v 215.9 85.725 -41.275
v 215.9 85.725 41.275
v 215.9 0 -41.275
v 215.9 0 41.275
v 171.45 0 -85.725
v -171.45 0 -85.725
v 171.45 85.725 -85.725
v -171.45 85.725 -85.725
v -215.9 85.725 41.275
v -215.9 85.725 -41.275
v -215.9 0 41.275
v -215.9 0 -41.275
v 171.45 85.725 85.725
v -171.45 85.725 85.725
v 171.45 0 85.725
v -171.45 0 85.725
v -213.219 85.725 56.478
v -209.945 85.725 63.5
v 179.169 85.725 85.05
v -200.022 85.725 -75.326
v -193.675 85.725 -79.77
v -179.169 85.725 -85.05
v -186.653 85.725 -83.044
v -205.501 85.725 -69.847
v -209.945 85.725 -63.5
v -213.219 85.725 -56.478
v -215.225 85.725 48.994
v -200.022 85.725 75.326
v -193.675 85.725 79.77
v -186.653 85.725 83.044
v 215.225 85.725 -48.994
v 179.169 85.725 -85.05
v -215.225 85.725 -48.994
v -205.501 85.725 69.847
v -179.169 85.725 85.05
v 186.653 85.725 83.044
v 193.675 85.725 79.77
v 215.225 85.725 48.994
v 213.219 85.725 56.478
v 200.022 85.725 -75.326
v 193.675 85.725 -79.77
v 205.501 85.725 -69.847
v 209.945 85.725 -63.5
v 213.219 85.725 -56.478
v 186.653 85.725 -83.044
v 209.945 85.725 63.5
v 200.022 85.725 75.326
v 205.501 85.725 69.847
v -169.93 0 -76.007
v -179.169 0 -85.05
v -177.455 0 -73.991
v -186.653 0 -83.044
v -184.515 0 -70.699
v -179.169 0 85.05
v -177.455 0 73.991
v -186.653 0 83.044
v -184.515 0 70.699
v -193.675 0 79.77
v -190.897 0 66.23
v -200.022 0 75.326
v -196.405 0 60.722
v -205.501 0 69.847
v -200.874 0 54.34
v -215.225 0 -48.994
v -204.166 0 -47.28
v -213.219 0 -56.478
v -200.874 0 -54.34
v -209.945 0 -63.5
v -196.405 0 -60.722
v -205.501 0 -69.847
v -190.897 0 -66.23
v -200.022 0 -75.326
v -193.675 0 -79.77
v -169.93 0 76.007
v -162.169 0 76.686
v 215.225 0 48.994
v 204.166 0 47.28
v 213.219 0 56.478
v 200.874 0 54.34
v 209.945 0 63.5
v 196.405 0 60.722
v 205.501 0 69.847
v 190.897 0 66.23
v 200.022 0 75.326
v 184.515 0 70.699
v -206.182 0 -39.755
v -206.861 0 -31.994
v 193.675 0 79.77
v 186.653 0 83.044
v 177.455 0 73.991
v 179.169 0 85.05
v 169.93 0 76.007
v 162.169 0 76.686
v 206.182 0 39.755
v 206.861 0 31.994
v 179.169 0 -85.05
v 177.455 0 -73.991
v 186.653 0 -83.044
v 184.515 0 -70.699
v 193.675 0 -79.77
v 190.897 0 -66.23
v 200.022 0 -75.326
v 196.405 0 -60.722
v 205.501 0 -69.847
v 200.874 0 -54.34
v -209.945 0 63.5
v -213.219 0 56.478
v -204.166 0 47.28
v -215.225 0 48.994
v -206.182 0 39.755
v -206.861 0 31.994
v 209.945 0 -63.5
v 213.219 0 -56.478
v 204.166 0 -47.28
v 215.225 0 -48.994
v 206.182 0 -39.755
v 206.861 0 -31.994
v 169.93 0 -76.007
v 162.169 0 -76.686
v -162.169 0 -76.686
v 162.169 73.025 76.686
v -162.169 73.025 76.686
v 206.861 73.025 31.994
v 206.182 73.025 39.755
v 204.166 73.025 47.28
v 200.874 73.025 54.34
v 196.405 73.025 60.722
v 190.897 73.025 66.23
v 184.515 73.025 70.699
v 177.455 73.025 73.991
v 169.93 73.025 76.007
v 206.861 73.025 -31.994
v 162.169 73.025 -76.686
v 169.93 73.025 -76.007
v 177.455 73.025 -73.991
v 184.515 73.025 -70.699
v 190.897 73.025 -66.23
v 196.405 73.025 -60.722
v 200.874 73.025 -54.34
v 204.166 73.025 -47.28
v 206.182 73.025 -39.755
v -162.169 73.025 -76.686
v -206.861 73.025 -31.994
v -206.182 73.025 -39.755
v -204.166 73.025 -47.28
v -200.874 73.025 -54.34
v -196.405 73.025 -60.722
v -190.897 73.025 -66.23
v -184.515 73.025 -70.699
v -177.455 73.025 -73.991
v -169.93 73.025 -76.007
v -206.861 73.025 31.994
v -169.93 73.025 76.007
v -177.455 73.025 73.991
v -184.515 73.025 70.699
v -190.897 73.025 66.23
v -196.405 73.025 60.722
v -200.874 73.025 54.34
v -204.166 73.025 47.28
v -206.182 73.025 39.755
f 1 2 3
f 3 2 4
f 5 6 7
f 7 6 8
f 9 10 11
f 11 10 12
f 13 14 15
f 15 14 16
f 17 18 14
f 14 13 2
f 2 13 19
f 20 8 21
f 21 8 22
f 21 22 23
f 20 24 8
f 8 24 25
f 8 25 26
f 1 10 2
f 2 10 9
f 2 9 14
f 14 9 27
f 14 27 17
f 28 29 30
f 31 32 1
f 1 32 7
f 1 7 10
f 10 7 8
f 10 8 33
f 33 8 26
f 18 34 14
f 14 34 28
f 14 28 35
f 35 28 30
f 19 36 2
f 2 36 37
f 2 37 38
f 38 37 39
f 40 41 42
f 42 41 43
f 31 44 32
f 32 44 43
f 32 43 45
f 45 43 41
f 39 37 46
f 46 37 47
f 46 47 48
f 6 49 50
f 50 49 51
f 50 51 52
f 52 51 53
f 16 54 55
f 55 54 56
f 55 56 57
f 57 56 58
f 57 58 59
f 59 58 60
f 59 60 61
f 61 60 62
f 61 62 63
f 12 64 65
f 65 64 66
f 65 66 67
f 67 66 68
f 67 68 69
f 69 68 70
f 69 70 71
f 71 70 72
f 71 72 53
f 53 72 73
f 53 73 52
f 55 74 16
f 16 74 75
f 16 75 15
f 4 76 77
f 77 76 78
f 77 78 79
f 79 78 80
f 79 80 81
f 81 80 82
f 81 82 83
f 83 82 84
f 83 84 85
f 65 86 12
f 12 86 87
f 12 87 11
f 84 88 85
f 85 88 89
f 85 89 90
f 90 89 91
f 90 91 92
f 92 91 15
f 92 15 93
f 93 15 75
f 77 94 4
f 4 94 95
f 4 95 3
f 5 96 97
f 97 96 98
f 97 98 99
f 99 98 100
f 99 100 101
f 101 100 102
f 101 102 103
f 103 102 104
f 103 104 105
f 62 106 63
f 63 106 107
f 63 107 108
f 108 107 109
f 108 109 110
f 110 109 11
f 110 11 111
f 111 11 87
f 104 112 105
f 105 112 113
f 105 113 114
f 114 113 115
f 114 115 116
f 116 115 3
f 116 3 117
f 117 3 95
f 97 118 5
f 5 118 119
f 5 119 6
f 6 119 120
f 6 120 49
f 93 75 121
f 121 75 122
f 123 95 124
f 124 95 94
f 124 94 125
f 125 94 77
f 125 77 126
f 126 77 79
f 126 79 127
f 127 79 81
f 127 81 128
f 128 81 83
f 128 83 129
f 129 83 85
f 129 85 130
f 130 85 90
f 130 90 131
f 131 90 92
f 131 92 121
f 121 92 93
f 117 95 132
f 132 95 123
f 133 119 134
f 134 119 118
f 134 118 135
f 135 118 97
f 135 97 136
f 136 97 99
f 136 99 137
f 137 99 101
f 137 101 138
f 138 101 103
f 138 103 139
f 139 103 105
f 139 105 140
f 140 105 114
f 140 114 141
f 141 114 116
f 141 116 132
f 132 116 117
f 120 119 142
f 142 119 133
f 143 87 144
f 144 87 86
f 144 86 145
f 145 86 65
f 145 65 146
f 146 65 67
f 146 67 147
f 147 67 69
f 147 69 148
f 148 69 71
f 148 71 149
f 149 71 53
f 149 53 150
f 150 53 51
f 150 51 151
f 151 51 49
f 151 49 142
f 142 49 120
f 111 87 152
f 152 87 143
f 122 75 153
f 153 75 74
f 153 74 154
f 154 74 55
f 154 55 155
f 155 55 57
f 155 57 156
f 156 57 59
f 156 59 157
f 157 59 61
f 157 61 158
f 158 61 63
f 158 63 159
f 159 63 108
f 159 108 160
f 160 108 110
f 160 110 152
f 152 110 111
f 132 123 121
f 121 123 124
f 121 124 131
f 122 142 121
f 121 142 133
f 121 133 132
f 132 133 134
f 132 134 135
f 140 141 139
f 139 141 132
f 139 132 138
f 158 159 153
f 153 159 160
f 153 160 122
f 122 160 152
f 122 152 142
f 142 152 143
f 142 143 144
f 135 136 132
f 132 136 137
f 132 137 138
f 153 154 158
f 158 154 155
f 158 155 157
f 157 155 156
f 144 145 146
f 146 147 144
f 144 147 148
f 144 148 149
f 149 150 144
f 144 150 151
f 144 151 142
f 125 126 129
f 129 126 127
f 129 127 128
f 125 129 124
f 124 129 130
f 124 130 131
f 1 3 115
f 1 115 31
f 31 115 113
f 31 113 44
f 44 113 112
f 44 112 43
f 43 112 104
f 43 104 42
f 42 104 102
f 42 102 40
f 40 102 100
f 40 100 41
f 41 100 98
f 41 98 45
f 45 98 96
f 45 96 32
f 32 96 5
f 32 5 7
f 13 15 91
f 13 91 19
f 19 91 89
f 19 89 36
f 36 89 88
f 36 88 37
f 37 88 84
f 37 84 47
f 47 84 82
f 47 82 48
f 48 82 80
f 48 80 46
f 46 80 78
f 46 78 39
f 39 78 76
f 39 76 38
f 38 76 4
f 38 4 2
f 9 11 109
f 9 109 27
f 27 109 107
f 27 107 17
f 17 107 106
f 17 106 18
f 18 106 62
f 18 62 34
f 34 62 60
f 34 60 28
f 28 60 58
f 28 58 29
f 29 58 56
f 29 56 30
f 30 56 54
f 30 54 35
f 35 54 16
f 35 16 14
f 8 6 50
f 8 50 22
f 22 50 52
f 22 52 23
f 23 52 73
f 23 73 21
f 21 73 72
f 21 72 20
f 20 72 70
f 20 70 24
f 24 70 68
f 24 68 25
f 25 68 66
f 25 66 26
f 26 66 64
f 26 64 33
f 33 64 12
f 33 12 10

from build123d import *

# Parameters (mm, degrees)
SKETCH1_W           = 431.8
SKETCH1_H           = 171.45
BOSS_EXTRUDE1_DEPTH = 85.725
CUT_EXTRUDE1_DEPTH  = 73.025
FILLET3_R           = 44.45


with BuildPart() as part:
    # Sketch1 → Boss-Extrude1 (new body)
    with BuildSketch(Plane(origin=(0, 0, 0), x_dir=(1, 0, 0), z_dir=(0, 1, 0))):
        Rectangle(SKETCH1_W, SKETCH1_H)
    extrude(amount=BOSS_EXTRUDE1_DEPTH)

    # Sketch2 → Cut-Extrude1 (cut)
    with BuildSketch(Plane.XZ):
        with BuildLine():
            Line((162.16885638, 76.686434381), (-162.16885638, 76.686434381))
            ThreePointArc((-162.16885638, 76.686434381), (-193.771281353, 63.596281353), (-206.861434381, 31.99385638))
            Line((-206.861434381, 31.99385638), (-206.861434381, -31.99385638))
            ThreePointArc((-206.861434381, -31.99385638), (-193.771281353, -63.596281353), (-162.16885638, -76.686434381))
            Line((-162.16885638, -76.686434381), (162.16885638, -76.686434381))
            ThreePointArc((162.16885638, -76.686434381), (193.771281353, -63.596281353), (206.861434381, -31.99385638))
            Line((206.861434381, -31.99385638), (206.861434381, 31.99385638))
            ThreePointArc((206.861434381, 31.99385638), (193.771281353, 63.596281353), (162.16885638, 76.686434381))
        make_face()
    extrude(amount=-CUT_EXTRUDE1_DEPTH, mode=Mode.SUBTRACT)

    # Fillet3
    fillet3_edges = [part.edges().sort_by_distance(p)[0] for p in [
        (215.9, 42.8625, 85.725),
        (-215.9, 42.8625, 85.725),
        (-215.9, 42.8625, -85.725),
        (215.9, 42.8625, -85.725),
    ]]
    fillet(fillet3_edges, radius=FILLET3_R)


solid = part.part
